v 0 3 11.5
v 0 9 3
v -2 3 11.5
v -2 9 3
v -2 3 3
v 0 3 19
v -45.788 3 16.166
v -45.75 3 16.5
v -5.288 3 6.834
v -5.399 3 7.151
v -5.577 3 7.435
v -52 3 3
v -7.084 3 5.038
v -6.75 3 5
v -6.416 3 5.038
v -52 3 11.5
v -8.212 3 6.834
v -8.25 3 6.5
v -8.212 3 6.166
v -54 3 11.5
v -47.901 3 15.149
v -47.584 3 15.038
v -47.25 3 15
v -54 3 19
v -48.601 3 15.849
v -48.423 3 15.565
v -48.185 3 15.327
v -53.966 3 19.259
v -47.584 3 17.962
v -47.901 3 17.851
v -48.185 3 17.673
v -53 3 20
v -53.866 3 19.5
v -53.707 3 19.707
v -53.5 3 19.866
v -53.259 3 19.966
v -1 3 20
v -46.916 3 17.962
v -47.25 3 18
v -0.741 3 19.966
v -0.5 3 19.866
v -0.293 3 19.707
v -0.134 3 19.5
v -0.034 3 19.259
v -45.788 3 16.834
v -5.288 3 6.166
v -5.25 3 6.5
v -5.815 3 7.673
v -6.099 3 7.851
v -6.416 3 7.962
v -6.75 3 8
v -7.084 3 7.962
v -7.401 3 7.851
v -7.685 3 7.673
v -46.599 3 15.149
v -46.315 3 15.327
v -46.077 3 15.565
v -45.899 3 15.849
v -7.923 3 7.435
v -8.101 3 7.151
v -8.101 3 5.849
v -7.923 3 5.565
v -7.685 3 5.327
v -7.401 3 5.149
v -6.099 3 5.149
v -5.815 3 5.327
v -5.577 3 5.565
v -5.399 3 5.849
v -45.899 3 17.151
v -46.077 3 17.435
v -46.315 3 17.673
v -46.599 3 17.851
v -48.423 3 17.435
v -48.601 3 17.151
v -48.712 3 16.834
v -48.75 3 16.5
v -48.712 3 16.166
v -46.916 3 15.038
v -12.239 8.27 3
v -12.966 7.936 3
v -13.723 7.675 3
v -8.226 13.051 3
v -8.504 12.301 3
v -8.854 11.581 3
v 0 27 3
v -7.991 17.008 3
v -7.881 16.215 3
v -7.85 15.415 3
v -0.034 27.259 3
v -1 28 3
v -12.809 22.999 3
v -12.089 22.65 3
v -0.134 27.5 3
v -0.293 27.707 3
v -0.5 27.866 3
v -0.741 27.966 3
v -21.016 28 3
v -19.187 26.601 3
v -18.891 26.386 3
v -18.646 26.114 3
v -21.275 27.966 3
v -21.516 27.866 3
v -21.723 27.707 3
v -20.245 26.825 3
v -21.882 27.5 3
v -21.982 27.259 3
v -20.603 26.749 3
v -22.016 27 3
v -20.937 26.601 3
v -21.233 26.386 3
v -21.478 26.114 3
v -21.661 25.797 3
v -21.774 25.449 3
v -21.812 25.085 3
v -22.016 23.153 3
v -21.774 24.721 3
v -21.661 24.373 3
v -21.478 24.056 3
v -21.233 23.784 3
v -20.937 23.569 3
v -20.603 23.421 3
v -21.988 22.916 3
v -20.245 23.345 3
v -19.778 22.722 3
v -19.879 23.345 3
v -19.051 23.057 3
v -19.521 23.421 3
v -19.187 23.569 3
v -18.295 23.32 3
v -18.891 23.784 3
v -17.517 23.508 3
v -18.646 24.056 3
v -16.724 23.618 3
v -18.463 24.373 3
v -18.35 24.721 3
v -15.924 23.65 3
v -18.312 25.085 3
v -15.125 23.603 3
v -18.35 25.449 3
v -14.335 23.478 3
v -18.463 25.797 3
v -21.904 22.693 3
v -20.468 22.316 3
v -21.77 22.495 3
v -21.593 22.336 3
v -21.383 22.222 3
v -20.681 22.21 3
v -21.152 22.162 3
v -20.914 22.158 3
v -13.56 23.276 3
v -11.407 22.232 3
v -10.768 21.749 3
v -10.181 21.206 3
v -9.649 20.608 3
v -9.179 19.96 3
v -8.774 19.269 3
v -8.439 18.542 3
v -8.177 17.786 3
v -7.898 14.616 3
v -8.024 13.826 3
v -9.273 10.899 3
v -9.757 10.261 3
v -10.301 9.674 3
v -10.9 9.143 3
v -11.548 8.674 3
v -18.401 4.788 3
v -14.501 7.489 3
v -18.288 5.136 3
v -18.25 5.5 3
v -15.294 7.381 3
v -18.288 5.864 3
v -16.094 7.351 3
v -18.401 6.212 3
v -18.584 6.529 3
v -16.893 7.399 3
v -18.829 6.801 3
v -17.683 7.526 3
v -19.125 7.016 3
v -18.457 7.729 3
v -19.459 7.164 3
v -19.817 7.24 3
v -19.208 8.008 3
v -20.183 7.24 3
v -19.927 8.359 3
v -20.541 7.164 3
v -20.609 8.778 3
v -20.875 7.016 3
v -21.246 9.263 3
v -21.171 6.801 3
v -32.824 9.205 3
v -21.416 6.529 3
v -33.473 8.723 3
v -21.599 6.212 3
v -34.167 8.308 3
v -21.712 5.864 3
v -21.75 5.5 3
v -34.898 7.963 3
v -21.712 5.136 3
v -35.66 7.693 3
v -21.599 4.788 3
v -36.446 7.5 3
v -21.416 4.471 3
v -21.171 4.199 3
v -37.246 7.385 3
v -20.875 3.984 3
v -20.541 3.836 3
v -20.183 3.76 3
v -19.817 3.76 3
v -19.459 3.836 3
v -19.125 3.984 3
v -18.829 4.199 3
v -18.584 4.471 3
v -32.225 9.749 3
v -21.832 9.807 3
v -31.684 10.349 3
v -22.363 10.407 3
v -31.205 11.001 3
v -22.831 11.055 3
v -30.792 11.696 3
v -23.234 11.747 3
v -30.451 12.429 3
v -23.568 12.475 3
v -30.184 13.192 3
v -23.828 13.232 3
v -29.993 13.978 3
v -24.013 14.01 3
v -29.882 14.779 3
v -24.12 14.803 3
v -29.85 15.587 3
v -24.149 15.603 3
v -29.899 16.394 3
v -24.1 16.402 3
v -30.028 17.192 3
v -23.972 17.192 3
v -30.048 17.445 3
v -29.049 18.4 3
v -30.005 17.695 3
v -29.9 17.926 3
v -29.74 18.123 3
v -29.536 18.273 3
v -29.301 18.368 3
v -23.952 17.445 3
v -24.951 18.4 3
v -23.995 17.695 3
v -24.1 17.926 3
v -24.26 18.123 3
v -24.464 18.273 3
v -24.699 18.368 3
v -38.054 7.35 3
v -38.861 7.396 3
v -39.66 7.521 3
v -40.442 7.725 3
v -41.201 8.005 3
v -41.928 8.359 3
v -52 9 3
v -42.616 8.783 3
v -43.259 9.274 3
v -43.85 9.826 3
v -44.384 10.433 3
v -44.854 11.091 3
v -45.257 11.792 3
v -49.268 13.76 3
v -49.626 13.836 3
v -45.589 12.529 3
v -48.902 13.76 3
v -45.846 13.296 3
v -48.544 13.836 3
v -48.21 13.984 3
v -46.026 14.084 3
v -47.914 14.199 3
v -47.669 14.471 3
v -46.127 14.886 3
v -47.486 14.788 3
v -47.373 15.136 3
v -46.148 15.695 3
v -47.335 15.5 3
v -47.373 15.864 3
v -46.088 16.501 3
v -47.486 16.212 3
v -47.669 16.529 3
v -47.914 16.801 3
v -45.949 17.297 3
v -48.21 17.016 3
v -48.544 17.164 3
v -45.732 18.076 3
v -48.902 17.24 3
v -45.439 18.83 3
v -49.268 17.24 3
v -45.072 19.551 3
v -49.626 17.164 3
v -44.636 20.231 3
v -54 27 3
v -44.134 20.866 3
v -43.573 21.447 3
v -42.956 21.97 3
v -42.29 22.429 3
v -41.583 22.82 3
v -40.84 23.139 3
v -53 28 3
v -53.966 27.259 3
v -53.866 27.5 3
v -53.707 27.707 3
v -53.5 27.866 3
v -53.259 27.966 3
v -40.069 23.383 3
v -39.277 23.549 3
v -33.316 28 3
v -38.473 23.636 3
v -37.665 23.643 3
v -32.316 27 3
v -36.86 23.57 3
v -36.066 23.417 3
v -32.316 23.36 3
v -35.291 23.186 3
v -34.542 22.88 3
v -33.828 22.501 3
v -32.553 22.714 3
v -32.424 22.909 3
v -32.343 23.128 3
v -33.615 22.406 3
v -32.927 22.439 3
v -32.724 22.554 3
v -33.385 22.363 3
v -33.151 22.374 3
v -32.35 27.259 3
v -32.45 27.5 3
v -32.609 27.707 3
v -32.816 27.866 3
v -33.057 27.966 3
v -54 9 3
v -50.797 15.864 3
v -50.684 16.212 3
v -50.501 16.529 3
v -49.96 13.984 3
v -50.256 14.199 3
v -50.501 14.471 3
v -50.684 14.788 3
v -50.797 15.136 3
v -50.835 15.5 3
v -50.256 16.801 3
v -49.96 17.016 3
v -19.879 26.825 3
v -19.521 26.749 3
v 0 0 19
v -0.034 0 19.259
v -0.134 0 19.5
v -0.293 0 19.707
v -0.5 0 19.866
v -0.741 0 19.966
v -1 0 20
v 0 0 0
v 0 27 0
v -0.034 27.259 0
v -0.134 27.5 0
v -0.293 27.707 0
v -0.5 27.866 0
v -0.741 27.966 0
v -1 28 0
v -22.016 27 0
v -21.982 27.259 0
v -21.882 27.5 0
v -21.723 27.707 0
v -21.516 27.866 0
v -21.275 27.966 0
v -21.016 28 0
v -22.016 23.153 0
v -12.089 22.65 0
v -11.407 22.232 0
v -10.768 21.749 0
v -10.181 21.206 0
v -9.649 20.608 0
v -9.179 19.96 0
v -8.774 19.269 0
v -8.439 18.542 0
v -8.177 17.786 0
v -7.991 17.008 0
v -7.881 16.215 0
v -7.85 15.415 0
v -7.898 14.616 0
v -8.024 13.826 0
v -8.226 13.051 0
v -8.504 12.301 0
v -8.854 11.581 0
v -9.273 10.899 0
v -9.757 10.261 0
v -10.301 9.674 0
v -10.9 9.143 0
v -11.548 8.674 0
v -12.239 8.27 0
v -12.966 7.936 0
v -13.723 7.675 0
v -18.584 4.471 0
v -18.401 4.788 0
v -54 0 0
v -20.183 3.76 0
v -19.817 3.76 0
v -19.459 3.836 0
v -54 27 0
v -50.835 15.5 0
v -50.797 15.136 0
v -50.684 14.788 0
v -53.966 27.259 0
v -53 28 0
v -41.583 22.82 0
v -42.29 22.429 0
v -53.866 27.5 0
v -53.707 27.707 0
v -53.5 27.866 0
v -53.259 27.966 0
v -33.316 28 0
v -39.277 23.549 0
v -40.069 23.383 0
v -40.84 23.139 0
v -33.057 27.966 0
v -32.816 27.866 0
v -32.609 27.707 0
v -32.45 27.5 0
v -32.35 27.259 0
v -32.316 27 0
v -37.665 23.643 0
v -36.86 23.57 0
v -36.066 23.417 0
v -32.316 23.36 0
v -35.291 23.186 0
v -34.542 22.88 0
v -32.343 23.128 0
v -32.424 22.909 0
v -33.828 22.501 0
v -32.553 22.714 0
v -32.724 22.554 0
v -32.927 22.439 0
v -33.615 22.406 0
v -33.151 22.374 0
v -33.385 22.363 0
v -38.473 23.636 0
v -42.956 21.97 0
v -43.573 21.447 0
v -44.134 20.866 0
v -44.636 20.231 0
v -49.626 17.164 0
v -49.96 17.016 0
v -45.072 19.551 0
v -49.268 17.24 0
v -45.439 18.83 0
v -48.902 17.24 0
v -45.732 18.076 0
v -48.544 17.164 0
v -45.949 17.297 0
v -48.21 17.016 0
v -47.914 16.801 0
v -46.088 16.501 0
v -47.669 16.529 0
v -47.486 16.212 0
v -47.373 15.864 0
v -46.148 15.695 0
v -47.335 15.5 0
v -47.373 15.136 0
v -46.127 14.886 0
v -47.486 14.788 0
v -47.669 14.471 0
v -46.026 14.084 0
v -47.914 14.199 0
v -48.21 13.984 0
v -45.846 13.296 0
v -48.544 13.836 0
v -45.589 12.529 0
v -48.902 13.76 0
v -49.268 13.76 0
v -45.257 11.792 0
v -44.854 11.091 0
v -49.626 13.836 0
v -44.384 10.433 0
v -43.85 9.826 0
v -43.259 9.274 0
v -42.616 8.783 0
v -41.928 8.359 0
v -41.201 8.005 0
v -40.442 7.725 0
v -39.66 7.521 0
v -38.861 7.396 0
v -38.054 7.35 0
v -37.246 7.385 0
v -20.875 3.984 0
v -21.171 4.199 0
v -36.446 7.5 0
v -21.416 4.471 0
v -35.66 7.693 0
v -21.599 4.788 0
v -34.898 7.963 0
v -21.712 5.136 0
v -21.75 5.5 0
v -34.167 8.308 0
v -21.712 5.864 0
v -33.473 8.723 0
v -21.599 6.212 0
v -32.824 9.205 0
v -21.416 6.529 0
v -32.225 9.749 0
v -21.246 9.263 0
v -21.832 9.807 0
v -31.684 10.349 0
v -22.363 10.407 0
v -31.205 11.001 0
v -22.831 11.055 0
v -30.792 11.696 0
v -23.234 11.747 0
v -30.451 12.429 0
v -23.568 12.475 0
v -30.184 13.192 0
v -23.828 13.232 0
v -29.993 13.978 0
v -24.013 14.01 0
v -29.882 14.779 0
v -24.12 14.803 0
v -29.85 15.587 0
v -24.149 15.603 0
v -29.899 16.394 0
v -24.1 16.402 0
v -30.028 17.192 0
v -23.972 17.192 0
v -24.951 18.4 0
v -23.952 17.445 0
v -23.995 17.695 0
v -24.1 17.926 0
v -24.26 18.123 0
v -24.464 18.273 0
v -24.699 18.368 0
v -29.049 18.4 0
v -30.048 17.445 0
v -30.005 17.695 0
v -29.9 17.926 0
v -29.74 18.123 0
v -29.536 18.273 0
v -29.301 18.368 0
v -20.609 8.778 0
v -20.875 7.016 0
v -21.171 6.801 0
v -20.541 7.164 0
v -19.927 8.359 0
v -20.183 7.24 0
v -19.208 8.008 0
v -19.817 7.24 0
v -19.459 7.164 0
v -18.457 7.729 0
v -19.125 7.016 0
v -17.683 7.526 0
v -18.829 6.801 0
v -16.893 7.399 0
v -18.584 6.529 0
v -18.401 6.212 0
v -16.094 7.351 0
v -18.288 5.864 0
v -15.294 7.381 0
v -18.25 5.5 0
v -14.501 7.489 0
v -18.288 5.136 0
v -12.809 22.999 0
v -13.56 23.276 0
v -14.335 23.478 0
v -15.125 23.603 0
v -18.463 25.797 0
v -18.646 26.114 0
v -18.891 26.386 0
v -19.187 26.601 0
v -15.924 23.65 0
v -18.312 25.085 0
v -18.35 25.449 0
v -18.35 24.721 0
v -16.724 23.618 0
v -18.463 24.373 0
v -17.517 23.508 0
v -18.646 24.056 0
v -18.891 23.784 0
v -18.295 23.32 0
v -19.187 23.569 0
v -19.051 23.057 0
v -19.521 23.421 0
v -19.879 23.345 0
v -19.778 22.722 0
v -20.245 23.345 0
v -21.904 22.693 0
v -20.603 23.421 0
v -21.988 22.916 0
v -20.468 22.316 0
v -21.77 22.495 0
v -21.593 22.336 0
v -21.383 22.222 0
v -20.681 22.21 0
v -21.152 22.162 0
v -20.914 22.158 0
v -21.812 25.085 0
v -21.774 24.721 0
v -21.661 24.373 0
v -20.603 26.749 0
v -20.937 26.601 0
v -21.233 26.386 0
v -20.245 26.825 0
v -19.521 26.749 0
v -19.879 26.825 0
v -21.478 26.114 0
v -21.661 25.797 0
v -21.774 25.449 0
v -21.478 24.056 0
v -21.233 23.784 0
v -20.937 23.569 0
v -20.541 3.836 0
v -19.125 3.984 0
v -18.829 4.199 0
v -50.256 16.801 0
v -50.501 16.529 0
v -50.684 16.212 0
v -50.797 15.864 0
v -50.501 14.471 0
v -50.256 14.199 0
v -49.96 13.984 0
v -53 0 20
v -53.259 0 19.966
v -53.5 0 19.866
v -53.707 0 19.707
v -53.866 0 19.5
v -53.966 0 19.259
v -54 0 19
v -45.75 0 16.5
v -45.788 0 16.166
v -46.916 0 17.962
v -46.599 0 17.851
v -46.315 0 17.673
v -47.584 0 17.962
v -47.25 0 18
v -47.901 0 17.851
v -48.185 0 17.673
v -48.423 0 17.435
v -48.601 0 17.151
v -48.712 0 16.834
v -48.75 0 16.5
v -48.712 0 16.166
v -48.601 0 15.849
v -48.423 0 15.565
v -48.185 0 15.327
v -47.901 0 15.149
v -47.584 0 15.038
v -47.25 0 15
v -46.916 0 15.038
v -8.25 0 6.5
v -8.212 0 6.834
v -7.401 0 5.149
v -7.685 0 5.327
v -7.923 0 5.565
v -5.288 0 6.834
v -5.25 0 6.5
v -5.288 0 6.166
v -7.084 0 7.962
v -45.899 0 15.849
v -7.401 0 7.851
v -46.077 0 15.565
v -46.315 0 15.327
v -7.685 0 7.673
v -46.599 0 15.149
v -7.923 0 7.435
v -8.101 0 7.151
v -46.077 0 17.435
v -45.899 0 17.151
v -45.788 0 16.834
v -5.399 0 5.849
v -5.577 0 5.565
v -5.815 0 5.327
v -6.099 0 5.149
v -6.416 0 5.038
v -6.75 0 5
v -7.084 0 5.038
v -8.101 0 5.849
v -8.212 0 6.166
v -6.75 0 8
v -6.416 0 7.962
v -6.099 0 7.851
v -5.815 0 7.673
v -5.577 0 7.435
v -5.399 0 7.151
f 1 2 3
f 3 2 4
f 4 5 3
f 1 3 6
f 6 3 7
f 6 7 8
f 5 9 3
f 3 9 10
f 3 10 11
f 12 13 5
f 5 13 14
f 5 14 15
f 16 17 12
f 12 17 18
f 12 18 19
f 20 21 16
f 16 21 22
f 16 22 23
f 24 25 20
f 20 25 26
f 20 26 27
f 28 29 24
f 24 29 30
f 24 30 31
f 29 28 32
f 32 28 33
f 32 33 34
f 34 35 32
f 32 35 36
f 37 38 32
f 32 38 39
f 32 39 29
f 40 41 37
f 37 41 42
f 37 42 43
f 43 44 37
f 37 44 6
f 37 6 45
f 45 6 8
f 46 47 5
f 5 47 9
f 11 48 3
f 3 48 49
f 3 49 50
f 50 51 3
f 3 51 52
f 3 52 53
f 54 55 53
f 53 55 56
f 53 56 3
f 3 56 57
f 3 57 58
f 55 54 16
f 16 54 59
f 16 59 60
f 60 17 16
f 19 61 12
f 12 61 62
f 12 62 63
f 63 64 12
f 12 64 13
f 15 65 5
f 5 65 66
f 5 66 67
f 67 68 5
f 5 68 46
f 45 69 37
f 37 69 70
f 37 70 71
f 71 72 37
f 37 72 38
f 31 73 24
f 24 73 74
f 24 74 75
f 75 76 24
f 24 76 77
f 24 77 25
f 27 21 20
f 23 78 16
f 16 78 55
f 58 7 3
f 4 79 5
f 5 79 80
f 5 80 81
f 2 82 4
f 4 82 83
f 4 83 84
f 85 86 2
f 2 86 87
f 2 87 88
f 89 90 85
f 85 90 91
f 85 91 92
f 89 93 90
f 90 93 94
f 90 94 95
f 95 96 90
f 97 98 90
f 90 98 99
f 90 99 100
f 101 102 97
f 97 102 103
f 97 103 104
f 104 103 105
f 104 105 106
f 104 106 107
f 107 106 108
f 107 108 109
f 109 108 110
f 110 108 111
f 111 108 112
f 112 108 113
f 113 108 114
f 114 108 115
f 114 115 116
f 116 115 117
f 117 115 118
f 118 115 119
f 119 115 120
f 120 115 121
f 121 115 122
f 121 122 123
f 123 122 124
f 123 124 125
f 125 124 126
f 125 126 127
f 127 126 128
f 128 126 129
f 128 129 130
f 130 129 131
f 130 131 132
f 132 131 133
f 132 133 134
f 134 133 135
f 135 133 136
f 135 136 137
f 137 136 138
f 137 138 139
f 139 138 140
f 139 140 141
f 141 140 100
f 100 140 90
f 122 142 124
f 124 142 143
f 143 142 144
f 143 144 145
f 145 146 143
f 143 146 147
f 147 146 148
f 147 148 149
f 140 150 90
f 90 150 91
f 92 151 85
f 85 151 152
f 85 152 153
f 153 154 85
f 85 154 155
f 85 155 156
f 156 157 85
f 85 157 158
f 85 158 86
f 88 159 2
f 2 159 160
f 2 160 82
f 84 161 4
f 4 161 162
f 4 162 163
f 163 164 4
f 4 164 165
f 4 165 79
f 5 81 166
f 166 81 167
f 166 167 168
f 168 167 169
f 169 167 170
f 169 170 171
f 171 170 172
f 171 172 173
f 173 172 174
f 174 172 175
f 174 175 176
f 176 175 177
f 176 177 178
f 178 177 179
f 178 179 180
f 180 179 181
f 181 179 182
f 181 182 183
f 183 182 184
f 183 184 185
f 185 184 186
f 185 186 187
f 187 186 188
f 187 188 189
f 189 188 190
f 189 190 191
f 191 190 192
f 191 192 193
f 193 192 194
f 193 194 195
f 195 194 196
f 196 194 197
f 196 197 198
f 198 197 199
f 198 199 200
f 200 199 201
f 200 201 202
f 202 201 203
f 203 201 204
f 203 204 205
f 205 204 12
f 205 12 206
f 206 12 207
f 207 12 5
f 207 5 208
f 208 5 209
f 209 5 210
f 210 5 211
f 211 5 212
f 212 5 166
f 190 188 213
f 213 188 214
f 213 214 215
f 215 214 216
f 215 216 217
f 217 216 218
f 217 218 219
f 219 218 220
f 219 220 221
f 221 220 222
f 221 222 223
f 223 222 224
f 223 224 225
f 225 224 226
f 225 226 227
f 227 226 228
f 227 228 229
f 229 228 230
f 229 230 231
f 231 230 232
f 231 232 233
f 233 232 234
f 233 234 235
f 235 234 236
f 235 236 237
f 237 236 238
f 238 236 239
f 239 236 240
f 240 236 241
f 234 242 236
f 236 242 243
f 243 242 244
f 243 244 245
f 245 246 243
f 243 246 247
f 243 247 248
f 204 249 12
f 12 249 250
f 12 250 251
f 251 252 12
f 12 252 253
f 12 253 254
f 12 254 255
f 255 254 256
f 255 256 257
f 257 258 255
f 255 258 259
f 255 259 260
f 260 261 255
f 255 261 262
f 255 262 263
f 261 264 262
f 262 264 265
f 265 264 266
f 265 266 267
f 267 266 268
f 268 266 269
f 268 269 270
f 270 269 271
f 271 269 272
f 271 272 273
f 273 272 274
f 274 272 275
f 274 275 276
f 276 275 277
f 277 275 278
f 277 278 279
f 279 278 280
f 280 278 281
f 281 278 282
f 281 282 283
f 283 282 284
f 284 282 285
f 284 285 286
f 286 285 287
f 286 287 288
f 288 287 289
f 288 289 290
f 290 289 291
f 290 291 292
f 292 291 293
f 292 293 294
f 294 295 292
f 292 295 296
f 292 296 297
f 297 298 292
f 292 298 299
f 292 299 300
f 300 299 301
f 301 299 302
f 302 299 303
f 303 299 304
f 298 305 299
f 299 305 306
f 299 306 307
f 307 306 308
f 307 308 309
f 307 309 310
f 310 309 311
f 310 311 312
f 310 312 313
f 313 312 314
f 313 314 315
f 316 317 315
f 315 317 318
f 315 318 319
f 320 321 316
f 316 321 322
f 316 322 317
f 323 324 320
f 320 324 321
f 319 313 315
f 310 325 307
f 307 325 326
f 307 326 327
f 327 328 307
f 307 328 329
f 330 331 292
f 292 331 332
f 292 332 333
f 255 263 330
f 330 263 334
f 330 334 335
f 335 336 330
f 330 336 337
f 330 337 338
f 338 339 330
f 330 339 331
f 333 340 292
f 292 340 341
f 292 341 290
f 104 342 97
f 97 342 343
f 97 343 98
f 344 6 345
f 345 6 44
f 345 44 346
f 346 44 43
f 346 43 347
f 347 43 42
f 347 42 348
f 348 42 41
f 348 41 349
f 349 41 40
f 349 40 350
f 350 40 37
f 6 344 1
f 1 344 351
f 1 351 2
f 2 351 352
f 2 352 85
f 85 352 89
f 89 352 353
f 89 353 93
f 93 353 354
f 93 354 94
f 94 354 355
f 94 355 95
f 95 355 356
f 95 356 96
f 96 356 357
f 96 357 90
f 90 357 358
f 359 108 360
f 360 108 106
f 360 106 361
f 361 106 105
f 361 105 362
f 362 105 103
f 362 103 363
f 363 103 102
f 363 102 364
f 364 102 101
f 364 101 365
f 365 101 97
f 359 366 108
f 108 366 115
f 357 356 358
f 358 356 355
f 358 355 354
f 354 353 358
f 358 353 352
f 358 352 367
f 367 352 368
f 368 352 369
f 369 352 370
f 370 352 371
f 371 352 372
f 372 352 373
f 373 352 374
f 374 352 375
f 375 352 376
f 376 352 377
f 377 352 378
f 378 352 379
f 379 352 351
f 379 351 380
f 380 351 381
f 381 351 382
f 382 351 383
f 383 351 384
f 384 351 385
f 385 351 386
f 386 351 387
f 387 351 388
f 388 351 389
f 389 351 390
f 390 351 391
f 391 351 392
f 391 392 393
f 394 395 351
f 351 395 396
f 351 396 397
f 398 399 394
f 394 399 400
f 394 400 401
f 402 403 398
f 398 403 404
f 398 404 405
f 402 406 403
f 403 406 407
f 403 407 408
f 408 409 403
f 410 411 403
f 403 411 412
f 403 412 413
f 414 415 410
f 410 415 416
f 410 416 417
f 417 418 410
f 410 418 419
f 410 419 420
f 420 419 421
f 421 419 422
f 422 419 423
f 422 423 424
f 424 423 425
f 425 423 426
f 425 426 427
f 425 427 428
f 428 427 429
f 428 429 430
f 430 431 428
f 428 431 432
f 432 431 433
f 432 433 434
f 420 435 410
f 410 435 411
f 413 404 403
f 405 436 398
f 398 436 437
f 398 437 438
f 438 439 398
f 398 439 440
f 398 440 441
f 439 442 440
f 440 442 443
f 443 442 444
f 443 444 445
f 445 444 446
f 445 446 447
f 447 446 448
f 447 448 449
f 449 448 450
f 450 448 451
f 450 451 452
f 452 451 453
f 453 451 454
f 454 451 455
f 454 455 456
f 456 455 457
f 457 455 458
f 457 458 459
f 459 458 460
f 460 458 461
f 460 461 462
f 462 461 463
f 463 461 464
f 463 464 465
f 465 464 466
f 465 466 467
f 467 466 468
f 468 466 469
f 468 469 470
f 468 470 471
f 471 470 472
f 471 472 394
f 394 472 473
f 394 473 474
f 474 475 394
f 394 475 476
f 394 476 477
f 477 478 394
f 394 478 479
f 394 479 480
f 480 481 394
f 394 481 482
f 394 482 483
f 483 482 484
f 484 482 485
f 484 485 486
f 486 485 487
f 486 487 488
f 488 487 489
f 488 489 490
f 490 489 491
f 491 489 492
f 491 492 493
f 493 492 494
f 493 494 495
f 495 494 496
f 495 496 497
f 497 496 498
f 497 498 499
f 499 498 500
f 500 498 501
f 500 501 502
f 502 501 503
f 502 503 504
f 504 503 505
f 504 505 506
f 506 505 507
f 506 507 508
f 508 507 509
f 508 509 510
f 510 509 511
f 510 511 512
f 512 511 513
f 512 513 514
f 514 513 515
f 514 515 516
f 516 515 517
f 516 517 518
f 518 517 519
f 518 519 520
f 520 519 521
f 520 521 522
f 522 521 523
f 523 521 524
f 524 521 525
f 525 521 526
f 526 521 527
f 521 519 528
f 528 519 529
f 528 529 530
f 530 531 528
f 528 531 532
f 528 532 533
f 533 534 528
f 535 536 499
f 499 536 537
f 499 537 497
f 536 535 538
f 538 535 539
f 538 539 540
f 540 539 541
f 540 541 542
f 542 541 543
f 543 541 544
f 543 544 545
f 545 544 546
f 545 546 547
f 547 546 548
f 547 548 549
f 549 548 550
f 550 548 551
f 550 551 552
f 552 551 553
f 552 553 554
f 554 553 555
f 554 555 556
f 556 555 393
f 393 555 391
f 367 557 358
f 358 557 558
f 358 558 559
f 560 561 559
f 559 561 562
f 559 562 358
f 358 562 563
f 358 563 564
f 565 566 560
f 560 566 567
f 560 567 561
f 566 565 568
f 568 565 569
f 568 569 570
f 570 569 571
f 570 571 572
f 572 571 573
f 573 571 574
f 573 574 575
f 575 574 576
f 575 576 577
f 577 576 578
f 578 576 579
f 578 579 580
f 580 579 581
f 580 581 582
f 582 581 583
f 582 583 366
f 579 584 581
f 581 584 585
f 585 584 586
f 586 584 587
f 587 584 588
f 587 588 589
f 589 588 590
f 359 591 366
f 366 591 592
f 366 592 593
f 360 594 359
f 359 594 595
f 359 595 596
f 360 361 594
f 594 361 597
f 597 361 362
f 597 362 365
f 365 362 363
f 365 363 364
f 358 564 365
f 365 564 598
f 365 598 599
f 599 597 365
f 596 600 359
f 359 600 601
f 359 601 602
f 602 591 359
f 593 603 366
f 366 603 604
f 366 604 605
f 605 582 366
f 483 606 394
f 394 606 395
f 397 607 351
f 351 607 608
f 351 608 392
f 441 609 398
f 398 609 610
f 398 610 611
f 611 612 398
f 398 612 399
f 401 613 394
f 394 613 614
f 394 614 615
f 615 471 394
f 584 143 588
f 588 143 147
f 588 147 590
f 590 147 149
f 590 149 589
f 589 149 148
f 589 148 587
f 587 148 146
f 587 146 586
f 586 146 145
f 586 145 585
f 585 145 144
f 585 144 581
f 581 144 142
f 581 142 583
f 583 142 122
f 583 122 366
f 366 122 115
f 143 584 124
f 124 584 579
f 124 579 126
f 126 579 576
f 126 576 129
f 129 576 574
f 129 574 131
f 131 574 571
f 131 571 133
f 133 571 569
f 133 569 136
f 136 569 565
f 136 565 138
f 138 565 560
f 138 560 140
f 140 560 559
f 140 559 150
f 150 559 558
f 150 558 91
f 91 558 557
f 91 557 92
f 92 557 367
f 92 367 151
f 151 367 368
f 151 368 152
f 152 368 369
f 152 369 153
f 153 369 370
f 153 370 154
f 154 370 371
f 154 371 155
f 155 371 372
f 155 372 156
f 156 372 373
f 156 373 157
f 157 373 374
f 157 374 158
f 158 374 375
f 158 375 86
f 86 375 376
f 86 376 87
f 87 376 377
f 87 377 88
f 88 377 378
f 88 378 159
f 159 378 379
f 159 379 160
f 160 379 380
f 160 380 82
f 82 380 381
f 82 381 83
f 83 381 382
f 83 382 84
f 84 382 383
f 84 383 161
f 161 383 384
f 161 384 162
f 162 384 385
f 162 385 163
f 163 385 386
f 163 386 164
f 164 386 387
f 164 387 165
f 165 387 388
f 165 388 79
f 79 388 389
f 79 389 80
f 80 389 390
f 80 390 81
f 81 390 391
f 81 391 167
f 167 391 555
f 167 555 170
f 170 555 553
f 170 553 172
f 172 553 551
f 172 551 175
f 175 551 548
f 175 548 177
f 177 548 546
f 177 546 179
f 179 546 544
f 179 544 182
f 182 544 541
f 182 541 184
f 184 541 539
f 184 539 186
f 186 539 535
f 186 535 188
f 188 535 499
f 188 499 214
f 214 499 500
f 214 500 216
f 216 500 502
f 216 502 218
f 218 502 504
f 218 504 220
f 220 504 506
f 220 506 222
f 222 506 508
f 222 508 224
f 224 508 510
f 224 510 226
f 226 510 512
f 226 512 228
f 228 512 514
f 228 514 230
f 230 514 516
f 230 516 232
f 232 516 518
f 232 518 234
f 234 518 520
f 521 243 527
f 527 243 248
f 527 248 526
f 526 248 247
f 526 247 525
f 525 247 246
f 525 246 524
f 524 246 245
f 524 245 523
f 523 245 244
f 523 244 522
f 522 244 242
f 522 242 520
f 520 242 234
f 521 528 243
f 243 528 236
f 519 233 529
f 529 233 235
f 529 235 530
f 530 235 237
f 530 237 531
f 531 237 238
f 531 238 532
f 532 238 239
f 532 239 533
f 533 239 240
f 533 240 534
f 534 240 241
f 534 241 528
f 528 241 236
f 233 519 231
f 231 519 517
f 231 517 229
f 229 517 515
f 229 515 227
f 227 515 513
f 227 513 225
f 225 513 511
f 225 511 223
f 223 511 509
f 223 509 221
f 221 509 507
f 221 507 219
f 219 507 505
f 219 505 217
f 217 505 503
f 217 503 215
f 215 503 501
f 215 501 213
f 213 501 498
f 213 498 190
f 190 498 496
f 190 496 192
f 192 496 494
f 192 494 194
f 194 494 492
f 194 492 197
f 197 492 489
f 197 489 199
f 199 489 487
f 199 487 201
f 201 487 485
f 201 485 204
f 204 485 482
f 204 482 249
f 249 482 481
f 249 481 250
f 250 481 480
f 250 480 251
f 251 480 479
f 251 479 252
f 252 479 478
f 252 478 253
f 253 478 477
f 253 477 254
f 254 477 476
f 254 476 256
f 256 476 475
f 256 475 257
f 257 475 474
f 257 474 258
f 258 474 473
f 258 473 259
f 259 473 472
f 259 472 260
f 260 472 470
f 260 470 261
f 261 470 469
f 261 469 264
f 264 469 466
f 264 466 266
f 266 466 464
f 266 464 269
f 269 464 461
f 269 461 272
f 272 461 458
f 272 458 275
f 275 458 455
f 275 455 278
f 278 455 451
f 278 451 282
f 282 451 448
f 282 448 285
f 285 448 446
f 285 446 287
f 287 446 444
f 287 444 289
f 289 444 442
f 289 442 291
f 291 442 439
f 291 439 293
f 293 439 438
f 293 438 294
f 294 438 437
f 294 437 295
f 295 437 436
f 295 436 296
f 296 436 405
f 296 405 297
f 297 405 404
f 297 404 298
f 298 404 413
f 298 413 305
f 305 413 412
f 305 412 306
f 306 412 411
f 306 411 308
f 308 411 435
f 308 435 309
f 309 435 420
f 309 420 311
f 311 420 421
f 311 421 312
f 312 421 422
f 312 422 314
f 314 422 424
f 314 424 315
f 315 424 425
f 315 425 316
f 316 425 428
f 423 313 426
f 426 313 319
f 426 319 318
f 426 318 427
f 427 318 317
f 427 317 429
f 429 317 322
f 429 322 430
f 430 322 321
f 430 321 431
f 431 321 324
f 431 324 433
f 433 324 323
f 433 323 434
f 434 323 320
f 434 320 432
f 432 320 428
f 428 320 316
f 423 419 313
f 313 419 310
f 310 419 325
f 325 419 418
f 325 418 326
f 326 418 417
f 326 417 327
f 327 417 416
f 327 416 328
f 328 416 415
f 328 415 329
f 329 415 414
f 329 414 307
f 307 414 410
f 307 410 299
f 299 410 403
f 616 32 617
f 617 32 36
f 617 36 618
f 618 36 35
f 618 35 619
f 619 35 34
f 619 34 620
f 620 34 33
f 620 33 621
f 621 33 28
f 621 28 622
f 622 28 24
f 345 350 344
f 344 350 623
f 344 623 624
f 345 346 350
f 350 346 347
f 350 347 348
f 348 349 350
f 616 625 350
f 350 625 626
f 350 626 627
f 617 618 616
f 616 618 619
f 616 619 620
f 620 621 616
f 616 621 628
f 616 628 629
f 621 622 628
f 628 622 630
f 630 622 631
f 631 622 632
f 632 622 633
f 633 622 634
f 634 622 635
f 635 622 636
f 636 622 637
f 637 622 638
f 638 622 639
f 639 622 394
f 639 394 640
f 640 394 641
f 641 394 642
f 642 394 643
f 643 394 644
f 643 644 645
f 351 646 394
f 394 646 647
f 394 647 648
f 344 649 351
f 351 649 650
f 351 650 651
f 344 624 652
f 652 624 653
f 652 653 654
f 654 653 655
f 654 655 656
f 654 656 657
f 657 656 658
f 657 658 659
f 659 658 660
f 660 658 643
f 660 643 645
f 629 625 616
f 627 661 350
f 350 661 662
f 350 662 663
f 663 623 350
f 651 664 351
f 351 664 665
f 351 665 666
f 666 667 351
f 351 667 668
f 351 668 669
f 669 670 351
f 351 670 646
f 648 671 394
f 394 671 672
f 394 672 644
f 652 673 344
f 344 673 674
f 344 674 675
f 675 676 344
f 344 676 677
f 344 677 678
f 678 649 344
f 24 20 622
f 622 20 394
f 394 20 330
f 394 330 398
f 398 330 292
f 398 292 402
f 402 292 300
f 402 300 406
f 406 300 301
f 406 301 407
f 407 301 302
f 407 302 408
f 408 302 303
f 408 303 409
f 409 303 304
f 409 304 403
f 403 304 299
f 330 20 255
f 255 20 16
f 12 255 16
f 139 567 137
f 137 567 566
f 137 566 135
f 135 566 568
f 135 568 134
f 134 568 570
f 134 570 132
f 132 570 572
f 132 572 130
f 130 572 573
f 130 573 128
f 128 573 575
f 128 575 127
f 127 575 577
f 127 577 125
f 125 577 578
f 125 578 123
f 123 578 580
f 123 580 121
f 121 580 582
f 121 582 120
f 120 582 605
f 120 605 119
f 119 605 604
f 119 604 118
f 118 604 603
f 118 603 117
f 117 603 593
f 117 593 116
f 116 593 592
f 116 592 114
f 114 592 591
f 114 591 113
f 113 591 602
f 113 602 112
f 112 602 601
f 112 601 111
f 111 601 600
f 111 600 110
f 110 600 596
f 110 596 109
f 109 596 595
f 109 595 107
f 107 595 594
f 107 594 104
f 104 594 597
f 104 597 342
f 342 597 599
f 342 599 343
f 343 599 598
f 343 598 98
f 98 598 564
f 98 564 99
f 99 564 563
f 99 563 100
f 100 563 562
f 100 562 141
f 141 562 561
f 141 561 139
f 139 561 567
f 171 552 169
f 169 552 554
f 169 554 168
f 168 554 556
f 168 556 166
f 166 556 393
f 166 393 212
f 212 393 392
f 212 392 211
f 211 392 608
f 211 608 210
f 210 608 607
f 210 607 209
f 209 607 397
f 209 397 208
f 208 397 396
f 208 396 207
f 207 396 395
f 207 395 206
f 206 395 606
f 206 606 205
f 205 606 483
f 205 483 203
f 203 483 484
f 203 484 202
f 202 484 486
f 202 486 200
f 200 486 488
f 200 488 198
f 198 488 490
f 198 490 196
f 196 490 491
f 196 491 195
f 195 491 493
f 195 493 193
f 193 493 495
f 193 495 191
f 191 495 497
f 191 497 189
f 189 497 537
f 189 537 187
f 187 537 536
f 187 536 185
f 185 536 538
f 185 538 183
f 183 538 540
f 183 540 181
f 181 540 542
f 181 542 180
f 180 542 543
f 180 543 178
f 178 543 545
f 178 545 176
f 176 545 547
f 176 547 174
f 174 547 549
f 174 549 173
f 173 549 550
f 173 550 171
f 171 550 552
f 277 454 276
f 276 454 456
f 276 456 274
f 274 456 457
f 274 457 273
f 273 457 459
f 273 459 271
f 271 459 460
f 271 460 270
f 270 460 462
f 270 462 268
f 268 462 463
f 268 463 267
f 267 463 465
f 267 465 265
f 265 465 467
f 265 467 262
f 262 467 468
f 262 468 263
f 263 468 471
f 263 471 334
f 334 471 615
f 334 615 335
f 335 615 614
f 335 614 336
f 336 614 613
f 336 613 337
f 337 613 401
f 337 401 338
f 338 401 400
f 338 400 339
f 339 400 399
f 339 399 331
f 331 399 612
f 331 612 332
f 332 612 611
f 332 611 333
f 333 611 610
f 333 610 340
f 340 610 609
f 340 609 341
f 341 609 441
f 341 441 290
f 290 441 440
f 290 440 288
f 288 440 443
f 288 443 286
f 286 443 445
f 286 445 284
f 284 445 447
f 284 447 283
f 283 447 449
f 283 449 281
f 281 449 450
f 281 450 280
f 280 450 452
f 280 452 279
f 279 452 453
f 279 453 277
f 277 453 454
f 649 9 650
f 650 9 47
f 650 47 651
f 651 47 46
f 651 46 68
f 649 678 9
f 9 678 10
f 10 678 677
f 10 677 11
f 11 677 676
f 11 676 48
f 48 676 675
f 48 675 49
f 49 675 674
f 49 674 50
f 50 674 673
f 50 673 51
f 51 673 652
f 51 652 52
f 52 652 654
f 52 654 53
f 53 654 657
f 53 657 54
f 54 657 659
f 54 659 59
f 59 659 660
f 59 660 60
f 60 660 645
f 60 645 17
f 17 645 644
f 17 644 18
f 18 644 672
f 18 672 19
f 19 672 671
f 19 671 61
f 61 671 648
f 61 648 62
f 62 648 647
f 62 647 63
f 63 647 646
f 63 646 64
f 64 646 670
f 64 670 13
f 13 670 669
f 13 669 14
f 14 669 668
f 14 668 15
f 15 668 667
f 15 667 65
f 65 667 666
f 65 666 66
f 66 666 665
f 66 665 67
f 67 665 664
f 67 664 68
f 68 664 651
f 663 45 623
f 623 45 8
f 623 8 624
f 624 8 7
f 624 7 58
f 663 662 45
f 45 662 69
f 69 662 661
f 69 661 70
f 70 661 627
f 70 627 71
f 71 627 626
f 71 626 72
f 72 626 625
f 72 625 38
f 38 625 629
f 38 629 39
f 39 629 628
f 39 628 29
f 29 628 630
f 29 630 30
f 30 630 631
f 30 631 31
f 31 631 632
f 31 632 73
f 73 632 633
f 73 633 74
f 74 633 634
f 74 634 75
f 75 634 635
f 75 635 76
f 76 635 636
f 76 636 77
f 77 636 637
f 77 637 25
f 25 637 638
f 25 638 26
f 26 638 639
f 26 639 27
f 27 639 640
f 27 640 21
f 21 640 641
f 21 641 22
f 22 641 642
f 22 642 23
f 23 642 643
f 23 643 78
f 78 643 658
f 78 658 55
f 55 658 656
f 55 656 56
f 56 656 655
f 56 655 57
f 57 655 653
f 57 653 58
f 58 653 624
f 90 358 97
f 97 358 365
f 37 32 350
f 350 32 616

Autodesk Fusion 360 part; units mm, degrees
sketch "Sketch1" plane through (0, 0, 0) normal (0, 1, 0) x (1, 0, 0)
  line L0 (0, 0) -> (-54, 0)
  line L1 (-54, 0) -> (-54, -20)
  line L2 (-54, -20) -> (0, -20)
  line L3 (0, -20) -> (0, 0)
  dimension "d5" = 54
  dimension "d6" = 20
extrude "Extrude1" add sketch "Sketch1" along normal blind 3
sketch "Sketch2" plane through (0, 3, 0) normal (0, 1, 0) x (-1, 0, 0)
  line L0 (0, 20) -> (0, 0)
  line L1 (0, 0) -> (54, 0)
  line L2 (54, 0) -> (54, 20)
  line L3 (54, 20) -> (0, 20)
  line L4 (0, 0) -> (54, 0)
  line L5 (54, 0) -> (54, 3)
  line L6 (54, 3) -> (0, 3)
  line L7 (0, 3) -> (0, 0)
  dimension "d9" = 3
extrude "Extrude2" add sketch "Sketch2" along normal blind 25 contours L0 L1 L2 L4 L5 L6 L7
sketch "Sketch3" plane through (0, 3, 0) normal (0, 1, 0) x (-1, 0, 0)
  line L0 (0, 3) -> (54, 3)
  line L1 (54, 3) -> (54, 20)
  line L2 (54, 20) -> (0, 20)
  line L3 (0, 20) -> (0, 3)
  circle A0 centre (6.75, 6.5) radius 1.5
  circle A1 centre (47.25, 16.5) radius 1.5
  line L4 (6.75, 16.5) -> (47.25, 16.5) construction
  line L5 (47.25, 16.5) -> (47.25, 6.5) construction
  line L6 (47.25, 6.5) -> (6.75, 6.5) construction
  line L7 (6.75, 6.5) -> (6.75, 16.5) construction
  line L8 (6.75, 16.5) -> (47.25, 6.5) construction
  line L9 (47.25, 16.5) -> (6.75, 6.5) construction
  line L10 (0, 20) -> (54, 3) construction
  line L11 (54, 20) -> (0, 3) construction
  point P0 (27, 11.5)
  point P1 (27, 11.5)
  dimension "d12" = 10
  dimension "d13" = 40.5
  dimension "d16" = 3
  dimension "d17" = 3
extrude "Extrude3" cut sketch "Sketch3" against normal up to surface (3 mm away) contours A0 | A1
sketch "Sketch4" plane through (0, 0, 0) normal (0, 0, -1) x (-1, 0, 0)
  line L0 (0, 0) -> (54, 0)
  line L1 (54, 0) -> (54, 28)
  line L2 (54, 28) -> (0, 28)
  line L3 (0, 28) -> (0, 0)
  line L4 (2, 28) -> (52, 28) construction
  line L5 (52, 28) -> (52, 3) construction
  line L6 (52, 3) -> (2, 3) construction
  line L7 (2, 3) -> (2, 28) construction
  circle A0 centre (20, 5.5) radius 1.75
  circle A1 centre (49.085, 15.5) radius 1.75
  line L8 (2, 15.5) -> (52, 15.5) construction
  line L9 (22.016, 28) -> (32.316, 28)
  line L10 (32.316, 28) -> (32.316, 21.3408)
  line L11 (30.3834, 18.4) -> (23.6166, 18.4)
  line L12 (22.016, 20.9982) -> (22.016, 28)
  circle A2 centre (20.062, 25.085) radius 1.75
  arc A3 (22.016, 20.9982) -> (23.6166, 18.4) centre (16, 15.5) ccw
  arc A4 (30.3834, 18.4) -> (32.316, 21.3408) centre (38, 15.5) ccw
  point P0 (27, 28)
  dimension "d20" = 50
  dimension "d21" = 25
  dimension "d24" = 18
  dimension "d25" = 2.5
  dimension "d26" = 3.5
  dimension "d27" = 3.5
  dimension "d28" = 2.915
  dimension "d29" = 12.5
  dimension "d30" = 16.3
  dimension "d31" = 16.3
  dimension "d33" = 14
  dimension "d34" = 14
  dimension "d35" = 20.016
  dimension "d36" = 9.6
  dimension "d37" = 3.5
  dimension "d38" = 2.915
  dimension "d39" = 18.062
  dimension "d40" = 10.3
extrude "Extrude4" cut sketch "Sketch4" against normal up to surface (3 mm away) contours L2 L9 L10 L11 L12 A3 A4 | A0 | A1 | A2
sketch "Sketch5" plane through (-54, 0, 0) normal (-1, 0, 0) x (0, 0, 1)
  line L0 (0, 0) -> (20, 0)
  line L1 (20, 0) -> (20, 3)
  line L2 (20, 3) -> (3, 3)
  line L3 (3, 3) -> (3, 28)
  line L4 (3, 28) -> (0, 28)
  line L5 (0, 28) -> (0, 0)
  line L6 (3, 9) -> (11.5, 3)
  dimension "d46" = 6
extrude "Extrude5" add sketch "Sketch5" against normal blind 2 contours L2 L3 L6
ref_plane "WorkPlane1" through (-27, 14, 10) normal (-1, 0, 0) x (0, 0, 1)
fillet "Fillet1" radius 1 10 edges at (-54, 28, 1.5) (-54, 1.5, 20) (-32.316, 28, 1.5) (-32.316, 21.3408, 1.5) (-30.3834, 18.4, 1.5) (-23.6166, 18.4, 1.5) (-22.016, 20.9982, 1.5) (-22.016, 28, 1.5) (0, 28, 1.5) (0, 1.5, 20)
mirror "Mirror1" about plane through (-27, 14, 10) normal (-1, 0, 0) of "Extrude5"
equation "height_base = 20 mm"
equation "width = 54 mm"
equation "thick = 3 mm"
equation "height_sensor = 25 mm"
equation "d5 = width"
equation "d6 = height_base"
equation "d7 = thick"
equation "d9 = thick"
equation "d10 = height_sensor"
equation "d12 = height_base * 1 / 2"
equation "d13 = width * 3 / 4"
equation "screw_base = 3 mm"
equation "screw_sensor = 3.5 mm"
equation "d16 = screw_base"
equation "d17 = screw_base"
equation "d26 = screw_sensor"
equation "d27 = screw_sensor"
equation "d30 = sensor"
equation "d31 = sensor"
equation "sensor = 16.3 mm"
equation "d37 = screw_sensor"
equation "fillet = 1 mm"
equation "d51 = fillet"
